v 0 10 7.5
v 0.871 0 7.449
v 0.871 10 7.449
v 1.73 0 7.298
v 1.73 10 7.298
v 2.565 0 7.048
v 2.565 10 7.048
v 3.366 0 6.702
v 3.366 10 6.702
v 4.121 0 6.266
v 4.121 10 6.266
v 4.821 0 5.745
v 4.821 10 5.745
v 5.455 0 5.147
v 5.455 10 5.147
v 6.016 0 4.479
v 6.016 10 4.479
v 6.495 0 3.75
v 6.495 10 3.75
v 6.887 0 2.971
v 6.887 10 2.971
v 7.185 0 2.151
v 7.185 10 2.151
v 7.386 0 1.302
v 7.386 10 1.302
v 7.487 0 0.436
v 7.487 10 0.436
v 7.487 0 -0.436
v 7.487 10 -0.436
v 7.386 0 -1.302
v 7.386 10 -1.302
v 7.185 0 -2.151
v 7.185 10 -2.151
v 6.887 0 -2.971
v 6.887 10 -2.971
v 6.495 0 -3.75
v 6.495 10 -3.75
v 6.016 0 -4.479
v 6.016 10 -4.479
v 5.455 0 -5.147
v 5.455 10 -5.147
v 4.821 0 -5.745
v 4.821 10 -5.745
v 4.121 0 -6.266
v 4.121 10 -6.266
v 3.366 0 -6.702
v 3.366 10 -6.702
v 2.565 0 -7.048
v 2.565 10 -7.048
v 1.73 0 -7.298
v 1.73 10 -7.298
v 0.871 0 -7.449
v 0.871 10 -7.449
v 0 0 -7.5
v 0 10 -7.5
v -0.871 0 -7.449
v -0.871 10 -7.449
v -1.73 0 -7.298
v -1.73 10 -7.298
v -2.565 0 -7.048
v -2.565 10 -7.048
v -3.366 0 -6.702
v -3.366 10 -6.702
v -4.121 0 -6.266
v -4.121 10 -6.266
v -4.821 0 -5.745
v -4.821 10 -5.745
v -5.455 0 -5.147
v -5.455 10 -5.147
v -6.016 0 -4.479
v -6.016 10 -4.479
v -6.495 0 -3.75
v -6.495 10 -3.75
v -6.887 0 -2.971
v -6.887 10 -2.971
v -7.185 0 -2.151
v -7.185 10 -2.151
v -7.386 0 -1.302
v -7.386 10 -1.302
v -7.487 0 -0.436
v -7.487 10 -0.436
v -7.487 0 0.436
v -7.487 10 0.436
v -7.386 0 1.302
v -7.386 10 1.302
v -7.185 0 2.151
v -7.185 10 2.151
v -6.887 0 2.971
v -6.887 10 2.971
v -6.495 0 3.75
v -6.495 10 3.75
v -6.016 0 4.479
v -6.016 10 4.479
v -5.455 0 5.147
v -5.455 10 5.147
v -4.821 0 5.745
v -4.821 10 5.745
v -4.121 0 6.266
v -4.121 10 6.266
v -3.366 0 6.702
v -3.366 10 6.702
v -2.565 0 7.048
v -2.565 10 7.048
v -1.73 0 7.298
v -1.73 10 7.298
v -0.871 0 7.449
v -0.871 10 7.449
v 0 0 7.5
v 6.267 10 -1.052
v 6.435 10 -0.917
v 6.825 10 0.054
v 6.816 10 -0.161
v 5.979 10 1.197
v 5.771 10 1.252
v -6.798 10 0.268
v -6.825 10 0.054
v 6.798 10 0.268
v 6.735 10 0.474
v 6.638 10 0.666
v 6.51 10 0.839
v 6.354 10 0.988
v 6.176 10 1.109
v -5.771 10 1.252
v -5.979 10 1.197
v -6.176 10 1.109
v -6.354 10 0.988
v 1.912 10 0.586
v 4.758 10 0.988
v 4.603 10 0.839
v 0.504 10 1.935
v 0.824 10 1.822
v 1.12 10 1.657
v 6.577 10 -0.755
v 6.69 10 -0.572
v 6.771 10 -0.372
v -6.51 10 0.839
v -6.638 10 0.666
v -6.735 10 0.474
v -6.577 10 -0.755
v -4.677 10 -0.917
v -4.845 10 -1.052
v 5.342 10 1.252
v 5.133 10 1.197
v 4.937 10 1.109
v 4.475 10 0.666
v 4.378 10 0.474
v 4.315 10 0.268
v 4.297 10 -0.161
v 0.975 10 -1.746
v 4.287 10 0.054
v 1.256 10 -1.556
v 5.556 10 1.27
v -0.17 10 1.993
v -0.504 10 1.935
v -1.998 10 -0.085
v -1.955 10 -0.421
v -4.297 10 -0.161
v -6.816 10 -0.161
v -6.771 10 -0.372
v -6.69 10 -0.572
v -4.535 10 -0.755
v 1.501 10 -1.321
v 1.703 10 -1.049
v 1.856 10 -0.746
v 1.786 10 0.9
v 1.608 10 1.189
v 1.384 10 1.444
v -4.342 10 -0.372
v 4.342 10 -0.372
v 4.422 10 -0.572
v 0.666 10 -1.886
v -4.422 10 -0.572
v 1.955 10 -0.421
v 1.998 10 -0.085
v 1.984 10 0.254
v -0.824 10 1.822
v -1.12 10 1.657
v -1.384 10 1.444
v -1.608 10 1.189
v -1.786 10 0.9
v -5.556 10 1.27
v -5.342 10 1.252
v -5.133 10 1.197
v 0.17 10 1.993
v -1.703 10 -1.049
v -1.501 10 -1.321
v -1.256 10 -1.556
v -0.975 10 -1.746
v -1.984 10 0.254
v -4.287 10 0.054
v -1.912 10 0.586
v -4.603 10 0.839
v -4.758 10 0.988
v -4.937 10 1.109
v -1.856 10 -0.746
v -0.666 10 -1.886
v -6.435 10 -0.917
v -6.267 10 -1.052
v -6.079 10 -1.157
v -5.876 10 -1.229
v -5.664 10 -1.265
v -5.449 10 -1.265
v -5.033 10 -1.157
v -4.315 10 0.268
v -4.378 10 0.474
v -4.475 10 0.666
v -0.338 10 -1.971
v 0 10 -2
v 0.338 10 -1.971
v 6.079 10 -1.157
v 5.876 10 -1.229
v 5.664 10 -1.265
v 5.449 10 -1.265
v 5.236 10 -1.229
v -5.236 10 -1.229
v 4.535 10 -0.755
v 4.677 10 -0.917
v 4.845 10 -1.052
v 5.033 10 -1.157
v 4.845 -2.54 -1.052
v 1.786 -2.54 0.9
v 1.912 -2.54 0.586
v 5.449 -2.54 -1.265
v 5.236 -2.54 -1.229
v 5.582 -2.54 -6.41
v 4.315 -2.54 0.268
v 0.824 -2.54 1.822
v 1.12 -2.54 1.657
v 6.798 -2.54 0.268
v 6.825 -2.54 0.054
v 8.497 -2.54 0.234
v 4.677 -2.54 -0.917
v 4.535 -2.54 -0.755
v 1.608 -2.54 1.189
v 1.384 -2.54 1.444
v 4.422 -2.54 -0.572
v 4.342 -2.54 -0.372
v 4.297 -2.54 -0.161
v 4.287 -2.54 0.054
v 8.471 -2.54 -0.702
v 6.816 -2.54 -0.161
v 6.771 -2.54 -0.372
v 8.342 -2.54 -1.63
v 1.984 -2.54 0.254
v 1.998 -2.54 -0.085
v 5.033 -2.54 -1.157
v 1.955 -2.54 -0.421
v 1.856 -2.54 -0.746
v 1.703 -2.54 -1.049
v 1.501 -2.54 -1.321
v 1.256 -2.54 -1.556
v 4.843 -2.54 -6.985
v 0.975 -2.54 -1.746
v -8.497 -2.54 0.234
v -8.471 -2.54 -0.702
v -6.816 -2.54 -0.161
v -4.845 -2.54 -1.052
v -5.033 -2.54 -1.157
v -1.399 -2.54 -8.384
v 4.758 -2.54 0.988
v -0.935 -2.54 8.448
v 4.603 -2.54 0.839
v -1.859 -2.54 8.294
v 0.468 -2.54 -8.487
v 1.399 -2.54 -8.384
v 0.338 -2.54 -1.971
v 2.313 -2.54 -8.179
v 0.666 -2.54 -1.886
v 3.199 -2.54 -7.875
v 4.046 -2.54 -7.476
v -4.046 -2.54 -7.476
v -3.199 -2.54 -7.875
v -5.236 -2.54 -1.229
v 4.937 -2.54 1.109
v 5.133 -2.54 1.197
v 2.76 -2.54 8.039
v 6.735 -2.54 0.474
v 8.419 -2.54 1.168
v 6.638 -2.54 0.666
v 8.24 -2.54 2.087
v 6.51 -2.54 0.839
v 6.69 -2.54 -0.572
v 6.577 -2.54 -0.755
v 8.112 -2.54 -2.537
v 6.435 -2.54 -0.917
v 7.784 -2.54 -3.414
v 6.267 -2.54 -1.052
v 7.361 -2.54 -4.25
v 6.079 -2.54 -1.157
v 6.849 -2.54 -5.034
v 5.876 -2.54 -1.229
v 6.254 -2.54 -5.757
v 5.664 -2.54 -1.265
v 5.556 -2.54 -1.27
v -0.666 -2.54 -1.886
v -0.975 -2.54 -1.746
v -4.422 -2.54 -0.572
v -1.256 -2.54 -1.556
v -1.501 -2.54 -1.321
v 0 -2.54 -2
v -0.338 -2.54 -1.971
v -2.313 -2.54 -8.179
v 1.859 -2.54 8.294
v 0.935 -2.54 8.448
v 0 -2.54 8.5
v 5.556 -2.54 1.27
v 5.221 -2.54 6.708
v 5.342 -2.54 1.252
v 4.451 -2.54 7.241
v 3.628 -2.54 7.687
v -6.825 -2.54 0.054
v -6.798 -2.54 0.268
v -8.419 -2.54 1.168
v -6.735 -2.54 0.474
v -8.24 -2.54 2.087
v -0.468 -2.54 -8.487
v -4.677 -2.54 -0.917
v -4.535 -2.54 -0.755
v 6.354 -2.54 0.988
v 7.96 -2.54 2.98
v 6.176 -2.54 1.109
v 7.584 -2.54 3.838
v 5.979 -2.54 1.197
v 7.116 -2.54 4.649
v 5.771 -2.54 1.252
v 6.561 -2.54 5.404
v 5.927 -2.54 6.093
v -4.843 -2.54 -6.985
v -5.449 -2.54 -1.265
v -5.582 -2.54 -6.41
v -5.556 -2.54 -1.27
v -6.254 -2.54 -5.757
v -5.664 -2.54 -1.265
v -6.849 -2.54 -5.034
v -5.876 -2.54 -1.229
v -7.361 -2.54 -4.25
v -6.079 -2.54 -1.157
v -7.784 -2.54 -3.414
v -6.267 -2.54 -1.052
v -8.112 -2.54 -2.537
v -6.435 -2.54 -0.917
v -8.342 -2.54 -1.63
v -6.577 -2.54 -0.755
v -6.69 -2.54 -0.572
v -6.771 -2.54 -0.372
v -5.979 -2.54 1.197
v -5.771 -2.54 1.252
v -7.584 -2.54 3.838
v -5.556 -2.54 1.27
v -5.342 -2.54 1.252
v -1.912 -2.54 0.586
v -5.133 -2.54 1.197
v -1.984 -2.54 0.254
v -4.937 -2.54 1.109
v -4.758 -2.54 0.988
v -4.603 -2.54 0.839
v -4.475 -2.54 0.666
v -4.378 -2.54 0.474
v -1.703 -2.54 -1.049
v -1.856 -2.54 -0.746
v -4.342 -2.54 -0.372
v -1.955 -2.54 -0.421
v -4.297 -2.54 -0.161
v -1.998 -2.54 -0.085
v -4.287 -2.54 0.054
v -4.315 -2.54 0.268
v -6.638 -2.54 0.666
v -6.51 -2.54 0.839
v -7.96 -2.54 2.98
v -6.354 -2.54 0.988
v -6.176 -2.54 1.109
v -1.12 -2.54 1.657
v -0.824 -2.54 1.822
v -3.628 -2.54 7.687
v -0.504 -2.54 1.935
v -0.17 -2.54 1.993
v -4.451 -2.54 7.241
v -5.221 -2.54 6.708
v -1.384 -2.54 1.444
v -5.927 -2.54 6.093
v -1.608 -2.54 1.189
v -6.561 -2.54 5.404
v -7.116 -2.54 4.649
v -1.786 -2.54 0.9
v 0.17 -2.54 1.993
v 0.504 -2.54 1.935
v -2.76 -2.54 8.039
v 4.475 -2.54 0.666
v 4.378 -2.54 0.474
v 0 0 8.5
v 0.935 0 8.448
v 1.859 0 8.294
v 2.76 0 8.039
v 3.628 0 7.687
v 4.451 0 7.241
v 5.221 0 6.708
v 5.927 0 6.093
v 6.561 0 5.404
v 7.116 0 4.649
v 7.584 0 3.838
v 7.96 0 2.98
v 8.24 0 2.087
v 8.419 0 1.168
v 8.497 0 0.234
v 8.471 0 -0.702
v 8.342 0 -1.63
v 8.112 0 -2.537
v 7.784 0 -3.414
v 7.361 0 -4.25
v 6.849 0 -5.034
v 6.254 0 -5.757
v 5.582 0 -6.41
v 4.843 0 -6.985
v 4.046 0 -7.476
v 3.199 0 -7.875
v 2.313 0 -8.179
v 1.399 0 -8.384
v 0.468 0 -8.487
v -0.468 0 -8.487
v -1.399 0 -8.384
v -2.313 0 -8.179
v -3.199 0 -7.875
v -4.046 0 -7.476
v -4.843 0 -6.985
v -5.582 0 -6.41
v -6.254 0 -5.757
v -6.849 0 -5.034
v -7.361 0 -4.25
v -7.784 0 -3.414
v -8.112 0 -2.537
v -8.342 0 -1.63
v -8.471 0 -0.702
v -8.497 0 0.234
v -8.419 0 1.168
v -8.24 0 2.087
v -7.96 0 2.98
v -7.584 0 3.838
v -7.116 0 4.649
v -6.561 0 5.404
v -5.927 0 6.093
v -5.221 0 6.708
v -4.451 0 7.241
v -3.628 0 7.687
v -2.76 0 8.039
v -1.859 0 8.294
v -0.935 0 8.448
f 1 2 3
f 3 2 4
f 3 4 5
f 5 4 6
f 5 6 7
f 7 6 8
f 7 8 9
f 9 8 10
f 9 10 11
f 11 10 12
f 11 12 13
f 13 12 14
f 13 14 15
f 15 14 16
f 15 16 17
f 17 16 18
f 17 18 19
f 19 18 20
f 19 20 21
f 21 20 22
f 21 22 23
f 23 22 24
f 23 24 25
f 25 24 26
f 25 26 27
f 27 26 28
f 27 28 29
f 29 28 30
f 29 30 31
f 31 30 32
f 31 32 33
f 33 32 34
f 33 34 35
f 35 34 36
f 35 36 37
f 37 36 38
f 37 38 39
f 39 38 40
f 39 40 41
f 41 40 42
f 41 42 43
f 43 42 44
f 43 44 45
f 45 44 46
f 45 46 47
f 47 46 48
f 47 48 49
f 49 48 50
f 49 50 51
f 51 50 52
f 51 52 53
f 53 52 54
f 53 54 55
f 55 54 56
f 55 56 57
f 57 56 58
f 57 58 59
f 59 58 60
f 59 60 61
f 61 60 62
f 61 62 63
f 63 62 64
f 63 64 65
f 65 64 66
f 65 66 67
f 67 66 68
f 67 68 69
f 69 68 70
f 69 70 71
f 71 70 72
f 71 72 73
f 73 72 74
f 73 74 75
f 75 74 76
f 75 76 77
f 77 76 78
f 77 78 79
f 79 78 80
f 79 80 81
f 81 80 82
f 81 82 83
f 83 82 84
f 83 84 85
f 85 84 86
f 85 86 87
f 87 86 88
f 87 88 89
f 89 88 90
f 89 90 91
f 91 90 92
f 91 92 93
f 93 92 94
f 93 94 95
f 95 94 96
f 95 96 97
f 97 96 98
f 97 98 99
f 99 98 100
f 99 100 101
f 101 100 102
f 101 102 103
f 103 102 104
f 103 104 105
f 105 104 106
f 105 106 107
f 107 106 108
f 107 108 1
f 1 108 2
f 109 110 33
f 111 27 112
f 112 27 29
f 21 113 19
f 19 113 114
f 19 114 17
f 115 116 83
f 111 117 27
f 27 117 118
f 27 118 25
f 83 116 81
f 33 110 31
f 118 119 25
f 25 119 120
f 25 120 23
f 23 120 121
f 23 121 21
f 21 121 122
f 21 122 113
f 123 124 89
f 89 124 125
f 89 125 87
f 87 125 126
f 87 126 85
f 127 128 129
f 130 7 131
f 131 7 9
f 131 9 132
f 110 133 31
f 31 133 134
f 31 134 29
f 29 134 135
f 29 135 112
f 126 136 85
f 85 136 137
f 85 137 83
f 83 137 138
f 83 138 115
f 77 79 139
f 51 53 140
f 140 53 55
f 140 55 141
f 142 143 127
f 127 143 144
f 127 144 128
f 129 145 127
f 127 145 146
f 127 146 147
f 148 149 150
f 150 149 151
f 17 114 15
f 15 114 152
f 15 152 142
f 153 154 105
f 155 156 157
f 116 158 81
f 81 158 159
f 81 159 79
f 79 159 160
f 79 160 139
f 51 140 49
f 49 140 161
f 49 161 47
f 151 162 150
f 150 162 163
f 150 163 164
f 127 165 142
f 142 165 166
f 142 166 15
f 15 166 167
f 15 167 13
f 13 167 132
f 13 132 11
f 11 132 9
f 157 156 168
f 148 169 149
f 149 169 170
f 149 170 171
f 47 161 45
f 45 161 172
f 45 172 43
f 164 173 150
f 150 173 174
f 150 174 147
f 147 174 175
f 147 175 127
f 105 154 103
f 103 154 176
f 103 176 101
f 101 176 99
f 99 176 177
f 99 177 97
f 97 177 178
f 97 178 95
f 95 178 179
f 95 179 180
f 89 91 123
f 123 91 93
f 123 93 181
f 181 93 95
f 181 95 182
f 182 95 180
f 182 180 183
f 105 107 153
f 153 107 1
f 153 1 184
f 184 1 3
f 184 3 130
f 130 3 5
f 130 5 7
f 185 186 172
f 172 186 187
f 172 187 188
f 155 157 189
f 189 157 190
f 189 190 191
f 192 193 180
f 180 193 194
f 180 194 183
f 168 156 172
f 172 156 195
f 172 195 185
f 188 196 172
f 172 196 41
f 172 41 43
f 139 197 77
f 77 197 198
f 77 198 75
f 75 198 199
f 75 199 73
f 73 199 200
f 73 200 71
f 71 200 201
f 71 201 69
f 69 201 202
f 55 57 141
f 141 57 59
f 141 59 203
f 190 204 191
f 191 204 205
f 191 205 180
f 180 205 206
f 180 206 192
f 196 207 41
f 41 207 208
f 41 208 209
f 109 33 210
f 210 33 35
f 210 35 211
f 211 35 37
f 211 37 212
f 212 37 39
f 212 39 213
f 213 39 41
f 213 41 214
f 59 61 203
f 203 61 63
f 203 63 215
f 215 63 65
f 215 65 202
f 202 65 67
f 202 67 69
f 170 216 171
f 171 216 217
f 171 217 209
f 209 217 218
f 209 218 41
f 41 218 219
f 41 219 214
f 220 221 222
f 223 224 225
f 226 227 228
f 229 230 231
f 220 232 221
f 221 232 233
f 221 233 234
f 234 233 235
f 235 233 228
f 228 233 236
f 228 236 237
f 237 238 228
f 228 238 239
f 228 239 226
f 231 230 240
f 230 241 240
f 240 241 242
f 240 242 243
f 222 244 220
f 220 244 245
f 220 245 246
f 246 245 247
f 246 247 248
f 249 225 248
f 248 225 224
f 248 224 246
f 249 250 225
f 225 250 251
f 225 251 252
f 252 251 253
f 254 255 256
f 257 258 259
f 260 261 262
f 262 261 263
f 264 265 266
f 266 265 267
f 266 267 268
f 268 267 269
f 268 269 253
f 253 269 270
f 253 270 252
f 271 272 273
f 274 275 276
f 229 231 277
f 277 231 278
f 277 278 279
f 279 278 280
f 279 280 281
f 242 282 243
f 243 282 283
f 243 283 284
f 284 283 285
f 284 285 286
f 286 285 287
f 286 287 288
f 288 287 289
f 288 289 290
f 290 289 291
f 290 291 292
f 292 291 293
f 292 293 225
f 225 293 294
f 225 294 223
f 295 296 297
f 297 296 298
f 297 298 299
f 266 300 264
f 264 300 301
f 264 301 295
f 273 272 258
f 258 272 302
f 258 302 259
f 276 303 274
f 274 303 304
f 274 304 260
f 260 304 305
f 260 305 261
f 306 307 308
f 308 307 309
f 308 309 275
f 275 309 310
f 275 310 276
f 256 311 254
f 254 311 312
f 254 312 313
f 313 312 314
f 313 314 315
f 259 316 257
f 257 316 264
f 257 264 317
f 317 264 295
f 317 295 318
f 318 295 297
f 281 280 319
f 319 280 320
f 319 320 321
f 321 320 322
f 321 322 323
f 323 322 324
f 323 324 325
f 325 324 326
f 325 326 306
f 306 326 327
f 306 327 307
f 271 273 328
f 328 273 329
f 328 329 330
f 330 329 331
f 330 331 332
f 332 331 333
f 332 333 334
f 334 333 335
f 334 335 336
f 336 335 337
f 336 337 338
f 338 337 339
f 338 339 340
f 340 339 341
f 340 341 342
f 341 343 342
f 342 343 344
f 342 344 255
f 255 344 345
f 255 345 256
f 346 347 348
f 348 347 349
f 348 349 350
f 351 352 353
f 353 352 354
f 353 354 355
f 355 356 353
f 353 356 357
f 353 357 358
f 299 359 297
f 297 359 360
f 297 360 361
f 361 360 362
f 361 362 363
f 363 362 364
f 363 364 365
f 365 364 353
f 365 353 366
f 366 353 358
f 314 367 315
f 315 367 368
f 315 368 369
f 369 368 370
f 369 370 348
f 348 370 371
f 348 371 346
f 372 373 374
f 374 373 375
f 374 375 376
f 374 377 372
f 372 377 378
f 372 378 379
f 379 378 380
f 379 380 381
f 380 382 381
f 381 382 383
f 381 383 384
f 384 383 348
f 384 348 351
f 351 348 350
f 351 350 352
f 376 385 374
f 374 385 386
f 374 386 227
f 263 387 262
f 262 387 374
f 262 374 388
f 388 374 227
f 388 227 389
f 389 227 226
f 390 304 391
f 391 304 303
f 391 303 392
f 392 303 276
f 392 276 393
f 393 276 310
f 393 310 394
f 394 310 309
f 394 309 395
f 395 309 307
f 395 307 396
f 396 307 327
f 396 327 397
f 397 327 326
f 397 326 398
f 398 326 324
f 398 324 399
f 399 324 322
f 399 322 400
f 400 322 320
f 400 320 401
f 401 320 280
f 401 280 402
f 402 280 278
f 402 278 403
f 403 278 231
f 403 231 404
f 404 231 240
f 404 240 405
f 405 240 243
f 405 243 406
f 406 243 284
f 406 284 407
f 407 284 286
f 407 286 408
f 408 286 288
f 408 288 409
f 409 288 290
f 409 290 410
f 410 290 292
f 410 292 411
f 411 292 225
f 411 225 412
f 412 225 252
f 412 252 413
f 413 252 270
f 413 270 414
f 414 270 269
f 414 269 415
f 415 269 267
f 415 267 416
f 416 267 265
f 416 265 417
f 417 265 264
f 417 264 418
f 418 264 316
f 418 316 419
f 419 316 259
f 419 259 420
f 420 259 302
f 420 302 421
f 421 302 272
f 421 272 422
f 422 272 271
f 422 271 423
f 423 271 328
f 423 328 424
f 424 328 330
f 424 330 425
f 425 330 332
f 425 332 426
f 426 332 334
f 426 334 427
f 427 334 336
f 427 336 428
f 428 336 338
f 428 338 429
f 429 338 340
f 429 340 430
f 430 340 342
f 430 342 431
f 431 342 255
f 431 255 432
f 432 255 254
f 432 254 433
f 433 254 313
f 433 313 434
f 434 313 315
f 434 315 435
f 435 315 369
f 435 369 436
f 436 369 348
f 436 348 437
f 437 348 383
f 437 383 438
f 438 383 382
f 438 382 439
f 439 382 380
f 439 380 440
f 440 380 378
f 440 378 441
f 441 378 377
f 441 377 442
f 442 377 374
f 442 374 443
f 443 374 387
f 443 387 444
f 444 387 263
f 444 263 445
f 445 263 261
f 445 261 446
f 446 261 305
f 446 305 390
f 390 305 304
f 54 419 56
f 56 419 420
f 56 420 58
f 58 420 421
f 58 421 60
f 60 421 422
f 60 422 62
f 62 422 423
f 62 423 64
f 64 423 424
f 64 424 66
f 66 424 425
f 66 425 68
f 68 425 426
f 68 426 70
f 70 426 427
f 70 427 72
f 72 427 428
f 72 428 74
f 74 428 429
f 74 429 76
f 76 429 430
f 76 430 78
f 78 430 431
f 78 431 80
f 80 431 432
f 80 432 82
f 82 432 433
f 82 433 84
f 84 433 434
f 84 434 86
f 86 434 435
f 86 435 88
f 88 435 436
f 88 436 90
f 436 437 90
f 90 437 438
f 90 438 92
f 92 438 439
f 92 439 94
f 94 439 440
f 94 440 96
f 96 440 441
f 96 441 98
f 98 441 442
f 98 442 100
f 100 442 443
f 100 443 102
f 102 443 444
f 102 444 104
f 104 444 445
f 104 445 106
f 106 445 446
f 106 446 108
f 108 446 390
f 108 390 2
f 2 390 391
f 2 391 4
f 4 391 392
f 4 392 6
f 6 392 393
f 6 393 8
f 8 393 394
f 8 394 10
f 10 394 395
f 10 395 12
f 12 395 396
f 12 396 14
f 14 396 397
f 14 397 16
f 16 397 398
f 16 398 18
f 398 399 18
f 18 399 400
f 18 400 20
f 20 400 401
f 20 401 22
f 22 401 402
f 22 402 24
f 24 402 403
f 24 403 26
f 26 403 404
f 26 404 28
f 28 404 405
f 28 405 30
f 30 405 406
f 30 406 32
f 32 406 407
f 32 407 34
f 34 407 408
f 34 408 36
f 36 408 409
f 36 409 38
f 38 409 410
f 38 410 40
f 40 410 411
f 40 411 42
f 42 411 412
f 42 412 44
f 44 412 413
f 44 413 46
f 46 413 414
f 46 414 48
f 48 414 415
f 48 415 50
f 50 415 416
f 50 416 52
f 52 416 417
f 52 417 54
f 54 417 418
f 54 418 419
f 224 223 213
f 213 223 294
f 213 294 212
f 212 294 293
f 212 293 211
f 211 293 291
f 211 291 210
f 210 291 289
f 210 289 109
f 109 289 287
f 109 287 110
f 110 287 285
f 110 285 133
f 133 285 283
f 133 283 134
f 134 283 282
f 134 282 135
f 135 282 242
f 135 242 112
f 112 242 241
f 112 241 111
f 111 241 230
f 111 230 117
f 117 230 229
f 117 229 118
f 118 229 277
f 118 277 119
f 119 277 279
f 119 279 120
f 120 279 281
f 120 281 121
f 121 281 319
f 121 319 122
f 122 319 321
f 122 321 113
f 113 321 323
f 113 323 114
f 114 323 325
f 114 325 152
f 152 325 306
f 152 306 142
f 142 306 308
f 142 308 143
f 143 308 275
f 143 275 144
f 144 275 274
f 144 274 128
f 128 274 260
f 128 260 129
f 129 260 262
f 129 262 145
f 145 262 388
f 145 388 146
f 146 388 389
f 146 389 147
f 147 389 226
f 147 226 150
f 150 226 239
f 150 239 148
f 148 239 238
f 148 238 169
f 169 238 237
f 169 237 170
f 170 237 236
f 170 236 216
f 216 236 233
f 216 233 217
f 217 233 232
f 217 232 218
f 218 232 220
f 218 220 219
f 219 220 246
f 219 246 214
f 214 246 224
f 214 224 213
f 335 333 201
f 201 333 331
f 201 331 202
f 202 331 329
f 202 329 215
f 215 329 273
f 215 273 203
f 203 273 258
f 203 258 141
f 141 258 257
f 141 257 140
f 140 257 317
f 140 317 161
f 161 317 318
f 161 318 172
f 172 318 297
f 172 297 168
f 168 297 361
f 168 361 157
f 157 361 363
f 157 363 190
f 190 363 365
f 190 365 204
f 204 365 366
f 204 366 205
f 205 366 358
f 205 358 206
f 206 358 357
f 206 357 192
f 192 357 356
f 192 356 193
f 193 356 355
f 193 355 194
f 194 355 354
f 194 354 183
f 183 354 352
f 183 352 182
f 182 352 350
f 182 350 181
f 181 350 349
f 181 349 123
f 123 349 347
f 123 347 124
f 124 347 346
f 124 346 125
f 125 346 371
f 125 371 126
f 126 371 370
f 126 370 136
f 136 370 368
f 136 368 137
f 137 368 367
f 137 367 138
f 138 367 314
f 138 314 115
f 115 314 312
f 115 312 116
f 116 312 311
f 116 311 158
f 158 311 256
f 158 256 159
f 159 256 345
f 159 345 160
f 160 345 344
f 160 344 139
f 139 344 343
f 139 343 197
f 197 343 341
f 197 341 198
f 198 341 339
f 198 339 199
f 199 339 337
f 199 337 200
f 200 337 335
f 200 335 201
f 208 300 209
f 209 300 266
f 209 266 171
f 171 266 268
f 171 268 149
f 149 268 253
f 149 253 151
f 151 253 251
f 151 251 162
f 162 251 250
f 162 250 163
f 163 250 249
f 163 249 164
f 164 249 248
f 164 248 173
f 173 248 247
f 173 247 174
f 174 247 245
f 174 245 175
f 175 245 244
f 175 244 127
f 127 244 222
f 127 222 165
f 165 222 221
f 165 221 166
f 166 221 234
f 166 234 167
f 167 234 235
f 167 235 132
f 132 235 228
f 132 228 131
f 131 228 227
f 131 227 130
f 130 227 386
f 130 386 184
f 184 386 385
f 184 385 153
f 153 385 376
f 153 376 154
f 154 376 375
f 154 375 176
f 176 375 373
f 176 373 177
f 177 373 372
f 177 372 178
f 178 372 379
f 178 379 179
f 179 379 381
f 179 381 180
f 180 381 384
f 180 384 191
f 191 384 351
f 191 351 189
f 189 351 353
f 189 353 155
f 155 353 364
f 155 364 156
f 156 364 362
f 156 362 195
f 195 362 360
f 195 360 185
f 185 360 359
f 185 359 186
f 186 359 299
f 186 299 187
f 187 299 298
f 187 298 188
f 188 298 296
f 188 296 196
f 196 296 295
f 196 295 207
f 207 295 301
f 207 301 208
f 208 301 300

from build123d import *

# Parameters (mm, degrees)
SKETCH2_R          = 1.27
CUT_EXTRUDE1_DEPTH = 12.7
SKETCH3_R          = 2
CUT_EXTRUDE2_DEPTH = 18.37099882


with BuildPart() as part:
    # Sketch1 → Revolve1 (revolve)
    with BuildSketch(Plane.XY, mode=Mode.PRIVATE) as revolve1_sk:
        Polygon((-7.5, 0), (-8.5, 0), (-8.5, -2.54), (0, -2.54), (0, 10), (-7.5, 10), align=None)
    revolve(revolve1_sk.sketch.rotate(Axis((0, 10, 0), (0, -1, 0)), 270), axis=Axis((0, 10, 0), (0, -1, 0)))

    # Sketch2 → Cut-Extrude1 (cut)
    with BuildSketch(Plane(origin=(0, 10, 0), x_dir=(1, 0, 0), z_dir=(0, 1, 0))):
        with Locations(Location((-5.55625, 0, 0), (0, 0, 270))):
            Circle(SKETCH2_R)
        with Locations(Location((5.55625, 0, 0), (0, 0, 270))):
            Circle(SKETCH2_R)
    extrude(amount=-CUT_EXTRUDE1_DEPTH, mode=Mode.SUBTRACT)

    # Sketch3 → Cut-Extrude2 (cut, through all)
    with BuildSketch(Plane.XZ.offset(2.54)):
        with Locations(Location((0, 0, 0), (0, 0, 270))):
            Circle(SKETCH3_R)
    extrude(amount=-CUT_EXTRUDE2_DEPTH, mode=Mode.SUBTRACT)


solid = part.part
